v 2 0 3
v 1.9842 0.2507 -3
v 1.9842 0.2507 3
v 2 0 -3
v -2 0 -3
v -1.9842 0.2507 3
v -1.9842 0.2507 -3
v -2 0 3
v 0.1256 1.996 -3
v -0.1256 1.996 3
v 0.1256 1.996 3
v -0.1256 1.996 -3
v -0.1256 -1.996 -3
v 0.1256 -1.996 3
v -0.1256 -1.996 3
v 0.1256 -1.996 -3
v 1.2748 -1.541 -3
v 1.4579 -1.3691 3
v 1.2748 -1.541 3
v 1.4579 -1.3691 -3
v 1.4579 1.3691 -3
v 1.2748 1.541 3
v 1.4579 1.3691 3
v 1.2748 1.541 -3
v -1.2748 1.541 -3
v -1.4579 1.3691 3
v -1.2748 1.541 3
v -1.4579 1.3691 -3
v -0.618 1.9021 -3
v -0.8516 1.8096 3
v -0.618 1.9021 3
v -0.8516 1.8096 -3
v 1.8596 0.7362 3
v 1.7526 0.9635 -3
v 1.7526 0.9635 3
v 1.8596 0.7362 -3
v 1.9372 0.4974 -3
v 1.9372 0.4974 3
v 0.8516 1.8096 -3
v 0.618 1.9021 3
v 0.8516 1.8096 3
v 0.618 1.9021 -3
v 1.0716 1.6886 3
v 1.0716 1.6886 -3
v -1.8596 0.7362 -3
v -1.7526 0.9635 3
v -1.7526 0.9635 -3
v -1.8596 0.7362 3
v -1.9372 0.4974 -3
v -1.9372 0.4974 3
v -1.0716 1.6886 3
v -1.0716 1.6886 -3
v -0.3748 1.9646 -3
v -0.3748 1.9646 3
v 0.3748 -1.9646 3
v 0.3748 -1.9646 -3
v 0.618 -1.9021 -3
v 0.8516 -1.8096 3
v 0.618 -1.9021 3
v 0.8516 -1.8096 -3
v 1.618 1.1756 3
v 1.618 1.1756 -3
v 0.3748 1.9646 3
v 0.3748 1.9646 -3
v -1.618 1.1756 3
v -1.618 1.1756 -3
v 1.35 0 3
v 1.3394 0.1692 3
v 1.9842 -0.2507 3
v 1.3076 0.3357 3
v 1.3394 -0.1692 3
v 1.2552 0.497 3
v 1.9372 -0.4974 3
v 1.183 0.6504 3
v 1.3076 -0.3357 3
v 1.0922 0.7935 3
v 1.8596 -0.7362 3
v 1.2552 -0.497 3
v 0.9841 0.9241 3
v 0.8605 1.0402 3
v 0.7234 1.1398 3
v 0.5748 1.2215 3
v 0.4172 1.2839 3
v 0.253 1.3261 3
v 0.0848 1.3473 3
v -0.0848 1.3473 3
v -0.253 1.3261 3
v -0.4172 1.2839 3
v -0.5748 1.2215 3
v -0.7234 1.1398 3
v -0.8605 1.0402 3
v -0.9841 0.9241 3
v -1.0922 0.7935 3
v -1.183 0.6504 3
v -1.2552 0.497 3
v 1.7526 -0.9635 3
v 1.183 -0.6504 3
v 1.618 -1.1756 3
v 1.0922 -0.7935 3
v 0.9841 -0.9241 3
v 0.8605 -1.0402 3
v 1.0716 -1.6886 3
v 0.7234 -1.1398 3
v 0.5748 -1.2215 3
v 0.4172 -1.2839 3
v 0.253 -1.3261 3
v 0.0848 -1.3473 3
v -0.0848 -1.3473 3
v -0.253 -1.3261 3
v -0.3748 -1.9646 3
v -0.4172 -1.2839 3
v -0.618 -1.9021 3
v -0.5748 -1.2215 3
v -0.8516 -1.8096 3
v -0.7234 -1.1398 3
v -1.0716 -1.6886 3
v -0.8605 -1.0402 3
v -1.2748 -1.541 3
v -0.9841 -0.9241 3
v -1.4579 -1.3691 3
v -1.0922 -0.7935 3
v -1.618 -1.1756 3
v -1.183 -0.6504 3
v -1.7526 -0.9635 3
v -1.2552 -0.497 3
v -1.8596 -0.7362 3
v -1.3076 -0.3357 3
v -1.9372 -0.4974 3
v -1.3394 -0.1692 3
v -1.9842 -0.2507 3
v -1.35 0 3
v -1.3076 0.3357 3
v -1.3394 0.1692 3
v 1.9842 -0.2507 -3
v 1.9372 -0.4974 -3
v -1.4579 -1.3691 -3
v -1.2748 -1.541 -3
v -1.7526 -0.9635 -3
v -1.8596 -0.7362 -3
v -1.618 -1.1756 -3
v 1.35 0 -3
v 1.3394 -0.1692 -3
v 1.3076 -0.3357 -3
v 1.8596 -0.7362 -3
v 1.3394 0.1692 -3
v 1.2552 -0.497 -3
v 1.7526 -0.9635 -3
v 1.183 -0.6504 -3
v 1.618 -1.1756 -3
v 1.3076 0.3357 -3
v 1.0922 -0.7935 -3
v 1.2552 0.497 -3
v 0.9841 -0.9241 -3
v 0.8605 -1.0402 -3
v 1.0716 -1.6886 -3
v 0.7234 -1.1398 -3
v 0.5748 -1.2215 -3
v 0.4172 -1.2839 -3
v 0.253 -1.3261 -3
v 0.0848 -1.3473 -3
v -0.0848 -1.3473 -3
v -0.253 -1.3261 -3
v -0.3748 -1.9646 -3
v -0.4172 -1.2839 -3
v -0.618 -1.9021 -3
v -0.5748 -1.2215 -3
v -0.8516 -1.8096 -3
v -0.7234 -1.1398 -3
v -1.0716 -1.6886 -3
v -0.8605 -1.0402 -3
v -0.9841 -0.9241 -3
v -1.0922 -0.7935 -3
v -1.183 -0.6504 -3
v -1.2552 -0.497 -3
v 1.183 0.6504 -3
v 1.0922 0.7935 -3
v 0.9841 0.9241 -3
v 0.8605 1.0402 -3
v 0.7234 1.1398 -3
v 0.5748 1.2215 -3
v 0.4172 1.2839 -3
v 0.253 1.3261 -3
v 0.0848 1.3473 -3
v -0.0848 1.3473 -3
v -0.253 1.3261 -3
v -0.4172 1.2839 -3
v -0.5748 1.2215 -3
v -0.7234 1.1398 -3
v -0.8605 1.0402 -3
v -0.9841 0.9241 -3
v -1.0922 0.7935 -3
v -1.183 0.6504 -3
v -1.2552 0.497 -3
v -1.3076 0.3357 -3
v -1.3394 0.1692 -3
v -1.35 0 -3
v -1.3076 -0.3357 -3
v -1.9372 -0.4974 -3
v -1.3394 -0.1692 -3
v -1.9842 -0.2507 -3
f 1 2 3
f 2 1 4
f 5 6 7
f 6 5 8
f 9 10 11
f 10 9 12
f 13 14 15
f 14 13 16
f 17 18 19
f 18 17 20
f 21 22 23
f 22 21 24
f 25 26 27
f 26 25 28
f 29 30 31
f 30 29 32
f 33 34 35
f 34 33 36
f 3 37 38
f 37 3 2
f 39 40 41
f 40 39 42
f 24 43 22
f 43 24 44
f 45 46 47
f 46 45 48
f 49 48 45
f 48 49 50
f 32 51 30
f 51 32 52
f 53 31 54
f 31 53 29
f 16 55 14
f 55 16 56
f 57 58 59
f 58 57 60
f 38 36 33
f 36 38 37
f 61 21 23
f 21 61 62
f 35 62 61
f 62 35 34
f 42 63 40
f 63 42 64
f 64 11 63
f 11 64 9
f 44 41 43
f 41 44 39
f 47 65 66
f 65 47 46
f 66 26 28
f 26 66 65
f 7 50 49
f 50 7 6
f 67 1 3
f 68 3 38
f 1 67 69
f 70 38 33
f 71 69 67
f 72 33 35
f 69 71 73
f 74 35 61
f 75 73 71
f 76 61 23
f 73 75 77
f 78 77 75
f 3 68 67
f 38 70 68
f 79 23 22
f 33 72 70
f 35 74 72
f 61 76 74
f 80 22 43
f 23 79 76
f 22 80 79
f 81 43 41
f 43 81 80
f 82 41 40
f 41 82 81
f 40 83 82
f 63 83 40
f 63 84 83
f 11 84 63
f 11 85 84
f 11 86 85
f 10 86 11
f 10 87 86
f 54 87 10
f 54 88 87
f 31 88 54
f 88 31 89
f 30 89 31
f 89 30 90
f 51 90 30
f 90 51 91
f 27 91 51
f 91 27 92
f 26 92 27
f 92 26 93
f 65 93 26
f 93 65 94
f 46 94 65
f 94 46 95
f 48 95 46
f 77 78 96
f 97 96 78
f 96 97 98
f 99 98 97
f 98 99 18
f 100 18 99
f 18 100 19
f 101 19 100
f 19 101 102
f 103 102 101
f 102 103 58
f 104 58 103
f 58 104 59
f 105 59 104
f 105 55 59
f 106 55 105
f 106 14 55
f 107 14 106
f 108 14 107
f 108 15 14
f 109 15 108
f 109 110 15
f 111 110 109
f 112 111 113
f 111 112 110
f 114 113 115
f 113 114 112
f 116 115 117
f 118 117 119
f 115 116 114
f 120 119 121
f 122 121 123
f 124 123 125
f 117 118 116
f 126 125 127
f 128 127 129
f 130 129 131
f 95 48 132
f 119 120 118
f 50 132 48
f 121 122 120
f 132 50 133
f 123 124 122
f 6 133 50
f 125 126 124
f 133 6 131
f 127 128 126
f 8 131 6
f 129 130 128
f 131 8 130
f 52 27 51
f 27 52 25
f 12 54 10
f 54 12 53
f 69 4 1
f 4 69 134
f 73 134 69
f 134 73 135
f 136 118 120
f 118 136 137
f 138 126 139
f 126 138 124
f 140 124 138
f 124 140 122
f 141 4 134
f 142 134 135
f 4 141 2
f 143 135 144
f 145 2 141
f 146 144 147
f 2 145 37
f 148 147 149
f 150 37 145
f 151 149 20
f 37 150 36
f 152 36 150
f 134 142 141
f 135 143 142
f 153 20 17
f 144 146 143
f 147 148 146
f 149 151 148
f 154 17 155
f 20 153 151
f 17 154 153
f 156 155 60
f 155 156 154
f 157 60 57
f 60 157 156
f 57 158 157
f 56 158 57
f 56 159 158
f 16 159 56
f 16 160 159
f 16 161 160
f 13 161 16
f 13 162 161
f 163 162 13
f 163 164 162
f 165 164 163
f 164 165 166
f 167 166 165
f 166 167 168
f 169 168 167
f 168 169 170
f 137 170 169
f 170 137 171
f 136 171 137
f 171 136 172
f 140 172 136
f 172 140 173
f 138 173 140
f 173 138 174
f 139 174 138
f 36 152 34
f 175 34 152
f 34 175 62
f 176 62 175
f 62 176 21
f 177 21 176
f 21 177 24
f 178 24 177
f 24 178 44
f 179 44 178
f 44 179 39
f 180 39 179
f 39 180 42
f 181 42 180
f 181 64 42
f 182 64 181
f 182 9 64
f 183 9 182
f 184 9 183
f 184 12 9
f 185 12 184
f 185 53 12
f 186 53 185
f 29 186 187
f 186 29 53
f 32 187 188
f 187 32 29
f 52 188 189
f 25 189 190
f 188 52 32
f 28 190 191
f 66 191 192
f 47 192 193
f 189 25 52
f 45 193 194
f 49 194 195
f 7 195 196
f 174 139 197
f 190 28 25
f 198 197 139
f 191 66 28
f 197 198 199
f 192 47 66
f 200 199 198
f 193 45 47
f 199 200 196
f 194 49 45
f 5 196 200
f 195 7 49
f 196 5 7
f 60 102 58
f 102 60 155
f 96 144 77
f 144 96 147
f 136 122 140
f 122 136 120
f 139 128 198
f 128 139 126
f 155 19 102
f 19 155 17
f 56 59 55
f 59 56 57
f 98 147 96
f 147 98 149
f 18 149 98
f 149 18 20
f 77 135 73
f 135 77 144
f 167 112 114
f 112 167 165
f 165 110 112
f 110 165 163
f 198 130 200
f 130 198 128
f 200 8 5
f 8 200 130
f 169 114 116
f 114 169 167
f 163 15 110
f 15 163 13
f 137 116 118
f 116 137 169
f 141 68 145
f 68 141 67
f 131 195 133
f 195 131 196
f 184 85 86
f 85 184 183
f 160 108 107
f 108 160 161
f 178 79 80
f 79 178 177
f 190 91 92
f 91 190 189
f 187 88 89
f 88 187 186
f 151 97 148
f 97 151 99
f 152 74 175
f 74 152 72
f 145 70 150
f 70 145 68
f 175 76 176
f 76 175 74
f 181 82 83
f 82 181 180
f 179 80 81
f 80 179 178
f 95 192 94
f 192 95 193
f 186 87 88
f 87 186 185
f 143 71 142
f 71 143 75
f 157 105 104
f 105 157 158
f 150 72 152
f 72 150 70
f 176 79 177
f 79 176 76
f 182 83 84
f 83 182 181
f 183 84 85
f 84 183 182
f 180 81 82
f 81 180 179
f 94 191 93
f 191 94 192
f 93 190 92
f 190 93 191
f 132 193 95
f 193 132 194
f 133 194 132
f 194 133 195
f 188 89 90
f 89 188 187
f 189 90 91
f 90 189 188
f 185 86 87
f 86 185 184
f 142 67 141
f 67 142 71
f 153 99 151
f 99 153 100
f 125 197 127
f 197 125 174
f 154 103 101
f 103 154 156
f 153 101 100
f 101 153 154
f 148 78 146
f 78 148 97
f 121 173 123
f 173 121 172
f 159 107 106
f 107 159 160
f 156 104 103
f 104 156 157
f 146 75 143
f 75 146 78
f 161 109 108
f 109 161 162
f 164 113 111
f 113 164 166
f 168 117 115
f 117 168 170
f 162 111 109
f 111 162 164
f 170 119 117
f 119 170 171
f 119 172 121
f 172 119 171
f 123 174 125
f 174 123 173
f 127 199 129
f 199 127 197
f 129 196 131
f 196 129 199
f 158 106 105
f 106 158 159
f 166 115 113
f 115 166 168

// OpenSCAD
$fn = 50;


difference() {
	union() {
		translate(v = [0, 0, -3.0000000000]) {
			cylinder(h = 6, r = 2.0000000000);
		}
	}
	union() {
		translate(v = [0, 0, -100.0000000000]) {
			cylinder(h = 200, r = 1.3500000000);
		}
	}
}
